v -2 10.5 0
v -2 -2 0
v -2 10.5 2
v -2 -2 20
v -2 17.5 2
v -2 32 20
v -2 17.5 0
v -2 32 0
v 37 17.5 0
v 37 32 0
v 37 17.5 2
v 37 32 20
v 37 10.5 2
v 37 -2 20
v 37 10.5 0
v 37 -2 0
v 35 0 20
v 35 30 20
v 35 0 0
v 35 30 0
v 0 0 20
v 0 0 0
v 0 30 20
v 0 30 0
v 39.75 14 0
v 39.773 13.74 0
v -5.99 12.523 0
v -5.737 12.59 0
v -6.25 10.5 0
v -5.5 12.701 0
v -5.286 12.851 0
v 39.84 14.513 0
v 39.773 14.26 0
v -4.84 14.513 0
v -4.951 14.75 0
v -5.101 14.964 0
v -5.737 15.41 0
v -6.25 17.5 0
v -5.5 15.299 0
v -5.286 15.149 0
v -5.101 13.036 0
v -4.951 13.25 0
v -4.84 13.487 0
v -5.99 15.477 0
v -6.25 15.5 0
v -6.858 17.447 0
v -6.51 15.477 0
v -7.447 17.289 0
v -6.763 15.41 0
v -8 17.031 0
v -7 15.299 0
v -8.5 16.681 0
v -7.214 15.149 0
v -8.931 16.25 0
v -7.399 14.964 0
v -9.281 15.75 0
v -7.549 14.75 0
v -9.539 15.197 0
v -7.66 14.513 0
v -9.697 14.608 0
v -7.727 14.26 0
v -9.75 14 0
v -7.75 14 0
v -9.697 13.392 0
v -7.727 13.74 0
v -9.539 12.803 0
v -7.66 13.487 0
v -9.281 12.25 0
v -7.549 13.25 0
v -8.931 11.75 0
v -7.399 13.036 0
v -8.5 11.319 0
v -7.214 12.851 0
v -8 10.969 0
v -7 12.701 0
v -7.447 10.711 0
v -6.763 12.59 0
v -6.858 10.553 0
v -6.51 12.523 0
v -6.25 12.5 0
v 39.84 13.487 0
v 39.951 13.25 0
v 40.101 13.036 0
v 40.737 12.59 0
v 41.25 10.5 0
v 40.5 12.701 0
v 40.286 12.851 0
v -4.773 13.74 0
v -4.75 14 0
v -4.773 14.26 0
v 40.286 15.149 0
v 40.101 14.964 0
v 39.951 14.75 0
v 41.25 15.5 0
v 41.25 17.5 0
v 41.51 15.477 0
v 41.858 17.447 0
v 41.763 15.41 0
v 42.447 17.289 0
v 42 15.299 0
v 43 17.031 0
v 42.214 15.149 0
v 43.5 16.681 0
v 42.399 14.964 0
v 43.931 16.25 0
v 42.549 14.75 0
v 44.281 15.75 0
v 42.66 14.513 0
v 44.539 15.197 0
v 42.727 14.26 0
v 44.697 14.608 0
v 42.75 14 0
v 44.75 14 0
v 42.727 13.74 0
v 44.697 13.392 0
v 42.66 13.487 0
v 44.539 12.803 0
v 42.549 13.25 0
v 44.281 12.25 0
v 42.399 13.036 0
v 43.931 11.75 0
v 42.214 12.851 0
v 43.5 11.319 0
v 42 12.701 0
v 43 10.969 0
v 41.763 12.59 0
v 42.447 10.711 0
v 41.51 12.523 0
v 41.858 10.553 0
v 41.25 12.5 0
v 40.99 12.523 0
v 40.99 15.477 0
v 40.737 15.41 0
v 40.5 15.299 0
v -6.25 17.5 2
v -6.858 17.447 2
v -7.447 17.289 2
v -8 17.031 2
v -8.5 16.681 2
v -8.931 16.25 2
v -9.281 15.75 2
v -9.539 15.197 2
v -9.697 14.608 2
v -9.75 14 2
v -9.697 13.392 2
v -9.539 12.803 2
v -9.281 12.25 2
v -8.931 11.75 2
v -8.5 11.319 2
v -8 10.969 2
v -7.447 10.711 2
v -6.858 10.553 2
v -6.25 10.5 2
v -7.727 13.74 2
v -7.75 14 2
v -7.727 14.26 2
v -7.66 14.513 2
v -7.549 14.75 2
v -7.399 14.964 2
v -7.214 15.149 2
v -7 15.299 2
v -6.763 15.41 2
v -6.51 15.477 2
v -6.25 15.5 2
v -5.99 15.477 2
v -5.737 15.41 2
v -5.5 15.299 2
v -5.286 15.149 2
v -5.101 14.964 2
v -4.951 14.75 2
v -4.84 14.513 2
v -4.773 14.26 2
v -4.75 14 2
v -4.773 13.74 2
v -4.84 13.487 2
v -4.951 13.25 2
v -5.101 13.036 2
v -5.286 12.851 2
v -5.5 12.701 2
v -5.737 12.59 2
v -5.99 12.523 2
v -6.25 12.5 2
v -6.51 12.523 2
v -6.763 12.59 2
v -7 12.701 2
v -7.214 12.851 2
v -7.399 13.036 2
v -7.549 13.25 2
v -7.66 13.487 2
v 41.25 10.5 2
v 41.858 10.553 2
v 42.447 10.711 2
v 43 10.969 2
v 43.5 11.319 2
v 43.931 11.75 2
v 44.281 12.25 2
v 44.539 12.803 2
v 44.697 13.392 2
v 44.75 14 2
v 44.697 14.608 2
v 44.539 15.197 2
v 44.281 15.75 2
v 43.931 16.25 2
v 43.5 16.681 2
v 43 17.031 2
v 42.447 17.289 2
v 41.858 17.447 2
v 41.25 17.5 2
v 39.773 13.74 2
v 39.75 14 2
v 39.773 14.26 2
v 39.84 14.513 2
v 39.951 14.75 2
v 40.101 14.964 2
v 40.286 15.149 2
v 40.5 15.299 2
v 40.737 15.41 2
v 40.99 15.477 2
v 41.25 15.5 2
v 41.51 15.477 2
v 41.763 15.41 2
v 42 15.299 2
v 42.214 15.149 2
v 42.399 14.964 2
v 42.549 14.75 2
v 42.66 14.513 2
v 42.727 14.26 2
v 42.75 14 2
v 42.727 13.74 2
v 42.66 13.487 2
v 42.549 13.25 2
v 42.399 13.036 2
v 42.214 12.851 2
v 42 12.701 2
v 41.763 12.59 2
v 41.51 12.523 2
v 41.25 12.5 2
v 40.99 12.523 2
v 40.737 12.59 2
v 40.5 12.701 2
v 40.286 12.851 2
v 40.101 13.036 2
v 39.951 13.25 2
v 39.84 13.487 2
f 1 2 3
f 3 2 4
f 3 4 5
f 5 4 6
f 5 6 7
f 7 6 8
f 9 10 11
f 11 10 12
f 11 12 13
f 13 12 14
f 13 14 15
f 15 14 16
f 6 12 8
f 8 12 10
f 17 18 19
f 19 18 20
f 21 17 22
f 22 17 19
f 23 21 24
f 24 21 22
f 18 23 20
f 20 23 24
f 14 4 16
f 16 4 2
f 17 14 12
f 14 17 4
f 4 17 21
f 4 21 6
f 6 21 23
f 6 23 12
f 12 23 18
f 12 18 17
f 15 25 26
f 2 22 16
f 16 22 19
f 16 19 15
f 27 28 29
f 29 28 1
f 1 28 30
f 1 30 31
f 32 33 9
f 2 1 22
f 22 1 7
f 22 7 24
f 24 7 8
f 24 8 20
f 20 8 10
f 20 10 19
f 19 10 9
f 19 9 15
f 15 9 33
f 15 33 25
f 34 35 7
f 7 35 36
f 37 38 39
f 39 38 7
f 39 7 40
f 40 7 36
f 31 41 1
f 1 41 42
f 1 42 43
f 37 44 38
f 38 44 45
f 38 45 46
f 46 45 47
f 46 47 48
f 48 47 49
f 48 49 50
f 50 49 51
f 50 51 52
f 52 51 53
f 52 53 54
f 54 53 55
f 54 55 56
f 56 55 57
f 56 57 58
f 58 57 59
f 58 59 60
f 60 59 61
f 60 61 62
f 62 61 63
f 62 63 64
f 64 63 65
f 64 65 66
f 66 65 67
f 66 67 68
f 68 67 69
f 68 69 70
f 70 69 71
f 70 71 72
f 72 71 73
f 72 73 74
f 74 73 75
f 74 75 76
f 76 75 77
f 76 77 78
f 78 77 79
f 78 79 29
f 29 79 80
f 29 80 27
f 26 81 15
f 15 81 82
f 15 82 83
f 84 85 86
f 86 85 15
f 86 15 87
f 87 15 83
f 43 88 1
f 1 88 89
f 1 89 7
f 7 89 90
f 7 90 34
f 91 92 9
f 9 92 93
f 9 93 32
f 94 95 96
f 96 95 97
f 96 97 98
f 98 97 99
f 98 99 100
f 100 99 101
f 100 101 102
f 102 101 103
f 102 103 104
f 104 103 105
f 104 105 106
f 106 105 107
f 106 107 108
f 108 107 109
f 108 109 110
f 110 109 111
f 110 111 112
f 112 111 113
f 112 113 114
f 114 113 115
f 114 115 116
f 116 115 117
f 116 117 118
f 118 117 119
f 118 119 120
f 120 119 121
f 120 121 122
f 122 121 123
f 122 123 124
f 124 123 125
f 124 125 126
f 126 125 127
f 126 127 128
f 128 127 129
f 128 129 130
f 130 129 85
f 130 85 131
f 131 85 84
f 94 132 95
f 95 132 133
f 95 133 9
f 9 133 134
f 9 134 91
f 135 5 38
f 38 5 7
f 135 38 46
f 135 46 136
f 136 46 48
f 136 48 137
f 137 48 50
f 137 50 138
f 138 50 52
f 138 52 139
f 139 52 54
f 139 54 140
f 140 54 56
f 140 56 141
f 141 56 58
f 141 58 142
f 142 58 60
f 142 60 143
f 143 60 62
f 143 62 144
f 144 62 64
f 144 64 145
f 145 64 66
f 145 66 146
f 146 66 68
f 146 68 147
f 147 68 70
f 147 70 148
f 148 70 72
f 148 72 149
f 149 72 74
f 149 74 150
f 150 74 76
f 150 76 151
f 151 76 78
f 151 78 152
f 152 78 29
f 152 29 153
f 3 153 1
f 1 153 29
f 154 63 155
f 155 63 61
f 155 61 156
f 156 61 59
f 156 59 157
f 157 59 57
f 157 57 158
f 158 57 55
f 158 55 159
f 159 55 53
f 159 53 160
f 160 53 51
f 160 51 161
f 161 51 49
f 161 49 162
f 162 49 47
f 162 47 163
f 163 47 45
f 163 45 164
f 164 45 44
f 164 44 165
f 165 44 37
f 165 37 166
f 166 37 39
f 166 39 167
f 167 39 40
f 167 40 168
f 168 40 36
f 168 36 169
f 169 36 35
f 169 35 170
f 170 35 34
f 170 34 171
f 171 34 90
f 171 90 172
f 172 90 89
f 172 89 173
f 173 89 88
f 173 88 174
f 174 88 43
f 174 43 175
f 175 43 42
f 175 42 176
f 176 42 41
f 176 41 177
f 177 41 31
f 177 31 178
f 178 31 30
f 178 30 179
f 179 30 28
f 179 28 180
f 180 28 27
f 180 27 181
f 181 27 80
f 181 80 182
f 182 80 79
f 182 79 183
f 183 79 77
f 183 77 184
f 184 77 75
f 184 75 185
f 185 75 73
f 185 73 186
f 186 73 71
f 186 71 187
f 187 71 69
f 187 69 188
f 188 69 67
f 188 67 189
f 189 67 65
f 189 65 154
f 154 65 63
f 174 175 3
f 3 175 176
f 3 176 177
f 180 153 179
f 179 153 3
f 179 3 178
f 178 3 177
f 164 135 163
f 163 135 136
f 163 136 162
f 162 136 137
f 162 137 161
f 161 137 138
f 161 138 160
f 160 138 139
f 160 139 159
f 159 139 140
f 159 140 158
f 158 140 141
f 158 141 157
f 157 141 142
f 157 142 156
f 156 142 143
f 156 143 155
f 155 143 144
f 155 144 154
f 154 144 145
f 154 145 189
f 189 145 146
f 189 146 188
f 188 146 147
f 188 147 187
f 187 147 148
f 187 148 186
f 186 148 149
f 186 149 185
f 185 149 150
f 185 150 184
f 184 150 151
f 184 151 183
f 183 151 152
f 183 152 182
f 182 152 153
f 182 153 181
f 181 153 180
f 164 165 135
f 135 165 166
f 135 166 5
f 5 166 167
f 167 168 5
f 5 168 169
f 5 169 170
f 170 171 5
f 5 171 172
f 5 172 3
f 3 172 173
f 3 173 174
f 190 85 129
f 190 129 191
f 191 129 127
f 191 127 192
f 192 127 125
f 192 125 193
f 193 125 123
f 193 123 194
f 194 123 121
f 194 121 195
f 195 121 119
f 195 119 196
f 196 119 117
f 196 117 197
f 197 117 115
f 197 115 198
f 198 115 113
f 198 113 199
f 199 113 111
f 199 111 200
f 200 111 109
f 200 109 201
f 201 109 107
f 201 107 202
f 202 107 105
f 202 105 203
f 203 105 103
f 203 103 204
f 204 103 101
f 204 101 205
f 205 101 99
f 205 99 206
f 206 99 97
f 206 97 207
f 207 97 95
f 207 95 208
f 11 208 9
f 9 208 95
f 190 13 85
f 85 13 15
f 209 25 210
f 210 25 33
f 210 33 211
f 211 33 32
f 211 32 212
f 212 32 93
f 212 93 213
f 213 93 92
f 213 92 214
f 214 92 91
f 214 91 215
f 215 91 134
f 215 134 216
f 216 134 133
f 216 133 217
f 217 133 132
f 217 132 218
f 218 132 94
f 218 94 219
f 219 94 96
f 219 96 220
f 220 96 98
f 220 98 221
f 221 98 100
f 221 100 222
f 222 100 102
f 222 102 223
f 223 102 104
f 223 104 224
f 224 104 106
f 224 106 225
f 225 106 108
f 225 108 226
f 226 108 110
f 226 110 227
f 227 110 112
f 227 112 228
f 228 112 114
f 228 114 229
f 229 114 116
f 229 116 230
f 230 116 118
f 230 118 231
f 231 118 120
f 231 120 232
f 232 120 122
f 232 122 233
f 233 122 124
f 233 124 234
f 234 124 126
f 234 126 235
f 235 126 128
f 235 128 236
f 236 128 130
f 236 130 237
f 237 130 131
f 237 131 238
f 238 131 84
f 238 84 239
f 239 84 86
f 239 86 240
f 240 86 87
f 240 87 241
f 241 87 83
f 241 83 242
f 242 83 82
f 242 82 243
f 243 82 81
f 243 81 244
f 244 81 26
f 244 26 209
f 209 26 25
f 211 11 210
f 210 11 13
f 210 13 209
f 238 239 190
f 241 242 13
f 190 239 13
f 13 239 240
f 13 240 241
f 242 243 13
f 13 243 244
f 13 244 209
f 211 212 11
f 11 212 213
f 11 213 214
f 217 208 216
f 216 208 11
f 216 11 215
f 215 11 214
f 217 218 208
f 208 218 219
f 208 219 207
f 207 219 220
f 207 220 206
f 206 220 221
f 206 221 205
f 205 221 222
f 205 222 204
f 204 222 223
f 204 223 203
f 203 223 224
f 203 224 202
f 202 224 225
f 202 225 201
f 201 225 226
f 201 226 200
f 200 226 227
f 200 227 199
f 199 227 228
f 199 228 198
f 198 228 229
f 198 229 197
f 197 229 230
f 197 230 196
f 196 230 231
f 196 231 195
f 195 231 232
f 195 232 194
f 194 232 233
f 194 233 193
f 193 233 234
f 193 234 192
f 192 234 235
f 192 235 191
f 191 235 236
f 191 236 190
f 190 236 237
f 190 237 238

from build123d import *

# Parameters (mm, degrees)
SKETCH1_W           = 35
SKETCH1_H           = 30
BOSS_EXTRUDE1_DEPTH = 20
SKETCH1_3_R         = 1.5
BOSS_EXTRUDE2_DEPTH = 2


with BuildPart() as part:
    # Sketch1 → Boss-Extrude1 (new body)
    with BuildSketch(Plane.XY):
        Polygon((37, 32), (-2, 32), (-2, 17.5), (-2, 10.5), (-2, -2), (37, -2), (37, 10.5), (37, 17.5), align=None)
        with Locations((17.5, 15)):
            Rectangle(SKETCH1_W, SKETCH1_H, mode=Mode.SUBTRACT)
    extrude(amount=BOSS_EXTRUDE1_DEPTH)

    # Sketch1<3> → Boss-Extrude2 (add)
    # profile 1 of 2: a face of its own
    with BuildSketch(Plane.XY):
        with BuildLine():
            Line((-2, 10.5), (-2, 17.5))
            Line((-2, 17.5), (-6.25, 17.5))
            ThreePointArc((-6.25, 17.5), (-9.75, 14), (-6.25, 10.5))
            Line((-6.25, 10.5), (-2, 10.5))
        make_face()
        with Locations((-6.25, 14)):
            Circle(SKETCH1_3_R, mode=Mode.SUBTRACT)
    # profile 2 of 2: a face of its own
    with BuildSketch(Plane.XY):
        with BuildLine():
            Line((41.25, 17.5), (37, 17.5))
            Line((37, 17.5), (37, 10.5))
            Line((37, 10.5), (41.25, 10.5))
            ThreePointArc((41.25, 10.5), (44.75, 14), (41.25, 17.5))
        make_face()
        with Locations((41.25, 14)):
            Circle(SKETCH1_3_R, mode=Mode.SUBTRACT)
    extrude(amount=BOSS_EXTRUDE2_DEPTH)


solid = part.part
